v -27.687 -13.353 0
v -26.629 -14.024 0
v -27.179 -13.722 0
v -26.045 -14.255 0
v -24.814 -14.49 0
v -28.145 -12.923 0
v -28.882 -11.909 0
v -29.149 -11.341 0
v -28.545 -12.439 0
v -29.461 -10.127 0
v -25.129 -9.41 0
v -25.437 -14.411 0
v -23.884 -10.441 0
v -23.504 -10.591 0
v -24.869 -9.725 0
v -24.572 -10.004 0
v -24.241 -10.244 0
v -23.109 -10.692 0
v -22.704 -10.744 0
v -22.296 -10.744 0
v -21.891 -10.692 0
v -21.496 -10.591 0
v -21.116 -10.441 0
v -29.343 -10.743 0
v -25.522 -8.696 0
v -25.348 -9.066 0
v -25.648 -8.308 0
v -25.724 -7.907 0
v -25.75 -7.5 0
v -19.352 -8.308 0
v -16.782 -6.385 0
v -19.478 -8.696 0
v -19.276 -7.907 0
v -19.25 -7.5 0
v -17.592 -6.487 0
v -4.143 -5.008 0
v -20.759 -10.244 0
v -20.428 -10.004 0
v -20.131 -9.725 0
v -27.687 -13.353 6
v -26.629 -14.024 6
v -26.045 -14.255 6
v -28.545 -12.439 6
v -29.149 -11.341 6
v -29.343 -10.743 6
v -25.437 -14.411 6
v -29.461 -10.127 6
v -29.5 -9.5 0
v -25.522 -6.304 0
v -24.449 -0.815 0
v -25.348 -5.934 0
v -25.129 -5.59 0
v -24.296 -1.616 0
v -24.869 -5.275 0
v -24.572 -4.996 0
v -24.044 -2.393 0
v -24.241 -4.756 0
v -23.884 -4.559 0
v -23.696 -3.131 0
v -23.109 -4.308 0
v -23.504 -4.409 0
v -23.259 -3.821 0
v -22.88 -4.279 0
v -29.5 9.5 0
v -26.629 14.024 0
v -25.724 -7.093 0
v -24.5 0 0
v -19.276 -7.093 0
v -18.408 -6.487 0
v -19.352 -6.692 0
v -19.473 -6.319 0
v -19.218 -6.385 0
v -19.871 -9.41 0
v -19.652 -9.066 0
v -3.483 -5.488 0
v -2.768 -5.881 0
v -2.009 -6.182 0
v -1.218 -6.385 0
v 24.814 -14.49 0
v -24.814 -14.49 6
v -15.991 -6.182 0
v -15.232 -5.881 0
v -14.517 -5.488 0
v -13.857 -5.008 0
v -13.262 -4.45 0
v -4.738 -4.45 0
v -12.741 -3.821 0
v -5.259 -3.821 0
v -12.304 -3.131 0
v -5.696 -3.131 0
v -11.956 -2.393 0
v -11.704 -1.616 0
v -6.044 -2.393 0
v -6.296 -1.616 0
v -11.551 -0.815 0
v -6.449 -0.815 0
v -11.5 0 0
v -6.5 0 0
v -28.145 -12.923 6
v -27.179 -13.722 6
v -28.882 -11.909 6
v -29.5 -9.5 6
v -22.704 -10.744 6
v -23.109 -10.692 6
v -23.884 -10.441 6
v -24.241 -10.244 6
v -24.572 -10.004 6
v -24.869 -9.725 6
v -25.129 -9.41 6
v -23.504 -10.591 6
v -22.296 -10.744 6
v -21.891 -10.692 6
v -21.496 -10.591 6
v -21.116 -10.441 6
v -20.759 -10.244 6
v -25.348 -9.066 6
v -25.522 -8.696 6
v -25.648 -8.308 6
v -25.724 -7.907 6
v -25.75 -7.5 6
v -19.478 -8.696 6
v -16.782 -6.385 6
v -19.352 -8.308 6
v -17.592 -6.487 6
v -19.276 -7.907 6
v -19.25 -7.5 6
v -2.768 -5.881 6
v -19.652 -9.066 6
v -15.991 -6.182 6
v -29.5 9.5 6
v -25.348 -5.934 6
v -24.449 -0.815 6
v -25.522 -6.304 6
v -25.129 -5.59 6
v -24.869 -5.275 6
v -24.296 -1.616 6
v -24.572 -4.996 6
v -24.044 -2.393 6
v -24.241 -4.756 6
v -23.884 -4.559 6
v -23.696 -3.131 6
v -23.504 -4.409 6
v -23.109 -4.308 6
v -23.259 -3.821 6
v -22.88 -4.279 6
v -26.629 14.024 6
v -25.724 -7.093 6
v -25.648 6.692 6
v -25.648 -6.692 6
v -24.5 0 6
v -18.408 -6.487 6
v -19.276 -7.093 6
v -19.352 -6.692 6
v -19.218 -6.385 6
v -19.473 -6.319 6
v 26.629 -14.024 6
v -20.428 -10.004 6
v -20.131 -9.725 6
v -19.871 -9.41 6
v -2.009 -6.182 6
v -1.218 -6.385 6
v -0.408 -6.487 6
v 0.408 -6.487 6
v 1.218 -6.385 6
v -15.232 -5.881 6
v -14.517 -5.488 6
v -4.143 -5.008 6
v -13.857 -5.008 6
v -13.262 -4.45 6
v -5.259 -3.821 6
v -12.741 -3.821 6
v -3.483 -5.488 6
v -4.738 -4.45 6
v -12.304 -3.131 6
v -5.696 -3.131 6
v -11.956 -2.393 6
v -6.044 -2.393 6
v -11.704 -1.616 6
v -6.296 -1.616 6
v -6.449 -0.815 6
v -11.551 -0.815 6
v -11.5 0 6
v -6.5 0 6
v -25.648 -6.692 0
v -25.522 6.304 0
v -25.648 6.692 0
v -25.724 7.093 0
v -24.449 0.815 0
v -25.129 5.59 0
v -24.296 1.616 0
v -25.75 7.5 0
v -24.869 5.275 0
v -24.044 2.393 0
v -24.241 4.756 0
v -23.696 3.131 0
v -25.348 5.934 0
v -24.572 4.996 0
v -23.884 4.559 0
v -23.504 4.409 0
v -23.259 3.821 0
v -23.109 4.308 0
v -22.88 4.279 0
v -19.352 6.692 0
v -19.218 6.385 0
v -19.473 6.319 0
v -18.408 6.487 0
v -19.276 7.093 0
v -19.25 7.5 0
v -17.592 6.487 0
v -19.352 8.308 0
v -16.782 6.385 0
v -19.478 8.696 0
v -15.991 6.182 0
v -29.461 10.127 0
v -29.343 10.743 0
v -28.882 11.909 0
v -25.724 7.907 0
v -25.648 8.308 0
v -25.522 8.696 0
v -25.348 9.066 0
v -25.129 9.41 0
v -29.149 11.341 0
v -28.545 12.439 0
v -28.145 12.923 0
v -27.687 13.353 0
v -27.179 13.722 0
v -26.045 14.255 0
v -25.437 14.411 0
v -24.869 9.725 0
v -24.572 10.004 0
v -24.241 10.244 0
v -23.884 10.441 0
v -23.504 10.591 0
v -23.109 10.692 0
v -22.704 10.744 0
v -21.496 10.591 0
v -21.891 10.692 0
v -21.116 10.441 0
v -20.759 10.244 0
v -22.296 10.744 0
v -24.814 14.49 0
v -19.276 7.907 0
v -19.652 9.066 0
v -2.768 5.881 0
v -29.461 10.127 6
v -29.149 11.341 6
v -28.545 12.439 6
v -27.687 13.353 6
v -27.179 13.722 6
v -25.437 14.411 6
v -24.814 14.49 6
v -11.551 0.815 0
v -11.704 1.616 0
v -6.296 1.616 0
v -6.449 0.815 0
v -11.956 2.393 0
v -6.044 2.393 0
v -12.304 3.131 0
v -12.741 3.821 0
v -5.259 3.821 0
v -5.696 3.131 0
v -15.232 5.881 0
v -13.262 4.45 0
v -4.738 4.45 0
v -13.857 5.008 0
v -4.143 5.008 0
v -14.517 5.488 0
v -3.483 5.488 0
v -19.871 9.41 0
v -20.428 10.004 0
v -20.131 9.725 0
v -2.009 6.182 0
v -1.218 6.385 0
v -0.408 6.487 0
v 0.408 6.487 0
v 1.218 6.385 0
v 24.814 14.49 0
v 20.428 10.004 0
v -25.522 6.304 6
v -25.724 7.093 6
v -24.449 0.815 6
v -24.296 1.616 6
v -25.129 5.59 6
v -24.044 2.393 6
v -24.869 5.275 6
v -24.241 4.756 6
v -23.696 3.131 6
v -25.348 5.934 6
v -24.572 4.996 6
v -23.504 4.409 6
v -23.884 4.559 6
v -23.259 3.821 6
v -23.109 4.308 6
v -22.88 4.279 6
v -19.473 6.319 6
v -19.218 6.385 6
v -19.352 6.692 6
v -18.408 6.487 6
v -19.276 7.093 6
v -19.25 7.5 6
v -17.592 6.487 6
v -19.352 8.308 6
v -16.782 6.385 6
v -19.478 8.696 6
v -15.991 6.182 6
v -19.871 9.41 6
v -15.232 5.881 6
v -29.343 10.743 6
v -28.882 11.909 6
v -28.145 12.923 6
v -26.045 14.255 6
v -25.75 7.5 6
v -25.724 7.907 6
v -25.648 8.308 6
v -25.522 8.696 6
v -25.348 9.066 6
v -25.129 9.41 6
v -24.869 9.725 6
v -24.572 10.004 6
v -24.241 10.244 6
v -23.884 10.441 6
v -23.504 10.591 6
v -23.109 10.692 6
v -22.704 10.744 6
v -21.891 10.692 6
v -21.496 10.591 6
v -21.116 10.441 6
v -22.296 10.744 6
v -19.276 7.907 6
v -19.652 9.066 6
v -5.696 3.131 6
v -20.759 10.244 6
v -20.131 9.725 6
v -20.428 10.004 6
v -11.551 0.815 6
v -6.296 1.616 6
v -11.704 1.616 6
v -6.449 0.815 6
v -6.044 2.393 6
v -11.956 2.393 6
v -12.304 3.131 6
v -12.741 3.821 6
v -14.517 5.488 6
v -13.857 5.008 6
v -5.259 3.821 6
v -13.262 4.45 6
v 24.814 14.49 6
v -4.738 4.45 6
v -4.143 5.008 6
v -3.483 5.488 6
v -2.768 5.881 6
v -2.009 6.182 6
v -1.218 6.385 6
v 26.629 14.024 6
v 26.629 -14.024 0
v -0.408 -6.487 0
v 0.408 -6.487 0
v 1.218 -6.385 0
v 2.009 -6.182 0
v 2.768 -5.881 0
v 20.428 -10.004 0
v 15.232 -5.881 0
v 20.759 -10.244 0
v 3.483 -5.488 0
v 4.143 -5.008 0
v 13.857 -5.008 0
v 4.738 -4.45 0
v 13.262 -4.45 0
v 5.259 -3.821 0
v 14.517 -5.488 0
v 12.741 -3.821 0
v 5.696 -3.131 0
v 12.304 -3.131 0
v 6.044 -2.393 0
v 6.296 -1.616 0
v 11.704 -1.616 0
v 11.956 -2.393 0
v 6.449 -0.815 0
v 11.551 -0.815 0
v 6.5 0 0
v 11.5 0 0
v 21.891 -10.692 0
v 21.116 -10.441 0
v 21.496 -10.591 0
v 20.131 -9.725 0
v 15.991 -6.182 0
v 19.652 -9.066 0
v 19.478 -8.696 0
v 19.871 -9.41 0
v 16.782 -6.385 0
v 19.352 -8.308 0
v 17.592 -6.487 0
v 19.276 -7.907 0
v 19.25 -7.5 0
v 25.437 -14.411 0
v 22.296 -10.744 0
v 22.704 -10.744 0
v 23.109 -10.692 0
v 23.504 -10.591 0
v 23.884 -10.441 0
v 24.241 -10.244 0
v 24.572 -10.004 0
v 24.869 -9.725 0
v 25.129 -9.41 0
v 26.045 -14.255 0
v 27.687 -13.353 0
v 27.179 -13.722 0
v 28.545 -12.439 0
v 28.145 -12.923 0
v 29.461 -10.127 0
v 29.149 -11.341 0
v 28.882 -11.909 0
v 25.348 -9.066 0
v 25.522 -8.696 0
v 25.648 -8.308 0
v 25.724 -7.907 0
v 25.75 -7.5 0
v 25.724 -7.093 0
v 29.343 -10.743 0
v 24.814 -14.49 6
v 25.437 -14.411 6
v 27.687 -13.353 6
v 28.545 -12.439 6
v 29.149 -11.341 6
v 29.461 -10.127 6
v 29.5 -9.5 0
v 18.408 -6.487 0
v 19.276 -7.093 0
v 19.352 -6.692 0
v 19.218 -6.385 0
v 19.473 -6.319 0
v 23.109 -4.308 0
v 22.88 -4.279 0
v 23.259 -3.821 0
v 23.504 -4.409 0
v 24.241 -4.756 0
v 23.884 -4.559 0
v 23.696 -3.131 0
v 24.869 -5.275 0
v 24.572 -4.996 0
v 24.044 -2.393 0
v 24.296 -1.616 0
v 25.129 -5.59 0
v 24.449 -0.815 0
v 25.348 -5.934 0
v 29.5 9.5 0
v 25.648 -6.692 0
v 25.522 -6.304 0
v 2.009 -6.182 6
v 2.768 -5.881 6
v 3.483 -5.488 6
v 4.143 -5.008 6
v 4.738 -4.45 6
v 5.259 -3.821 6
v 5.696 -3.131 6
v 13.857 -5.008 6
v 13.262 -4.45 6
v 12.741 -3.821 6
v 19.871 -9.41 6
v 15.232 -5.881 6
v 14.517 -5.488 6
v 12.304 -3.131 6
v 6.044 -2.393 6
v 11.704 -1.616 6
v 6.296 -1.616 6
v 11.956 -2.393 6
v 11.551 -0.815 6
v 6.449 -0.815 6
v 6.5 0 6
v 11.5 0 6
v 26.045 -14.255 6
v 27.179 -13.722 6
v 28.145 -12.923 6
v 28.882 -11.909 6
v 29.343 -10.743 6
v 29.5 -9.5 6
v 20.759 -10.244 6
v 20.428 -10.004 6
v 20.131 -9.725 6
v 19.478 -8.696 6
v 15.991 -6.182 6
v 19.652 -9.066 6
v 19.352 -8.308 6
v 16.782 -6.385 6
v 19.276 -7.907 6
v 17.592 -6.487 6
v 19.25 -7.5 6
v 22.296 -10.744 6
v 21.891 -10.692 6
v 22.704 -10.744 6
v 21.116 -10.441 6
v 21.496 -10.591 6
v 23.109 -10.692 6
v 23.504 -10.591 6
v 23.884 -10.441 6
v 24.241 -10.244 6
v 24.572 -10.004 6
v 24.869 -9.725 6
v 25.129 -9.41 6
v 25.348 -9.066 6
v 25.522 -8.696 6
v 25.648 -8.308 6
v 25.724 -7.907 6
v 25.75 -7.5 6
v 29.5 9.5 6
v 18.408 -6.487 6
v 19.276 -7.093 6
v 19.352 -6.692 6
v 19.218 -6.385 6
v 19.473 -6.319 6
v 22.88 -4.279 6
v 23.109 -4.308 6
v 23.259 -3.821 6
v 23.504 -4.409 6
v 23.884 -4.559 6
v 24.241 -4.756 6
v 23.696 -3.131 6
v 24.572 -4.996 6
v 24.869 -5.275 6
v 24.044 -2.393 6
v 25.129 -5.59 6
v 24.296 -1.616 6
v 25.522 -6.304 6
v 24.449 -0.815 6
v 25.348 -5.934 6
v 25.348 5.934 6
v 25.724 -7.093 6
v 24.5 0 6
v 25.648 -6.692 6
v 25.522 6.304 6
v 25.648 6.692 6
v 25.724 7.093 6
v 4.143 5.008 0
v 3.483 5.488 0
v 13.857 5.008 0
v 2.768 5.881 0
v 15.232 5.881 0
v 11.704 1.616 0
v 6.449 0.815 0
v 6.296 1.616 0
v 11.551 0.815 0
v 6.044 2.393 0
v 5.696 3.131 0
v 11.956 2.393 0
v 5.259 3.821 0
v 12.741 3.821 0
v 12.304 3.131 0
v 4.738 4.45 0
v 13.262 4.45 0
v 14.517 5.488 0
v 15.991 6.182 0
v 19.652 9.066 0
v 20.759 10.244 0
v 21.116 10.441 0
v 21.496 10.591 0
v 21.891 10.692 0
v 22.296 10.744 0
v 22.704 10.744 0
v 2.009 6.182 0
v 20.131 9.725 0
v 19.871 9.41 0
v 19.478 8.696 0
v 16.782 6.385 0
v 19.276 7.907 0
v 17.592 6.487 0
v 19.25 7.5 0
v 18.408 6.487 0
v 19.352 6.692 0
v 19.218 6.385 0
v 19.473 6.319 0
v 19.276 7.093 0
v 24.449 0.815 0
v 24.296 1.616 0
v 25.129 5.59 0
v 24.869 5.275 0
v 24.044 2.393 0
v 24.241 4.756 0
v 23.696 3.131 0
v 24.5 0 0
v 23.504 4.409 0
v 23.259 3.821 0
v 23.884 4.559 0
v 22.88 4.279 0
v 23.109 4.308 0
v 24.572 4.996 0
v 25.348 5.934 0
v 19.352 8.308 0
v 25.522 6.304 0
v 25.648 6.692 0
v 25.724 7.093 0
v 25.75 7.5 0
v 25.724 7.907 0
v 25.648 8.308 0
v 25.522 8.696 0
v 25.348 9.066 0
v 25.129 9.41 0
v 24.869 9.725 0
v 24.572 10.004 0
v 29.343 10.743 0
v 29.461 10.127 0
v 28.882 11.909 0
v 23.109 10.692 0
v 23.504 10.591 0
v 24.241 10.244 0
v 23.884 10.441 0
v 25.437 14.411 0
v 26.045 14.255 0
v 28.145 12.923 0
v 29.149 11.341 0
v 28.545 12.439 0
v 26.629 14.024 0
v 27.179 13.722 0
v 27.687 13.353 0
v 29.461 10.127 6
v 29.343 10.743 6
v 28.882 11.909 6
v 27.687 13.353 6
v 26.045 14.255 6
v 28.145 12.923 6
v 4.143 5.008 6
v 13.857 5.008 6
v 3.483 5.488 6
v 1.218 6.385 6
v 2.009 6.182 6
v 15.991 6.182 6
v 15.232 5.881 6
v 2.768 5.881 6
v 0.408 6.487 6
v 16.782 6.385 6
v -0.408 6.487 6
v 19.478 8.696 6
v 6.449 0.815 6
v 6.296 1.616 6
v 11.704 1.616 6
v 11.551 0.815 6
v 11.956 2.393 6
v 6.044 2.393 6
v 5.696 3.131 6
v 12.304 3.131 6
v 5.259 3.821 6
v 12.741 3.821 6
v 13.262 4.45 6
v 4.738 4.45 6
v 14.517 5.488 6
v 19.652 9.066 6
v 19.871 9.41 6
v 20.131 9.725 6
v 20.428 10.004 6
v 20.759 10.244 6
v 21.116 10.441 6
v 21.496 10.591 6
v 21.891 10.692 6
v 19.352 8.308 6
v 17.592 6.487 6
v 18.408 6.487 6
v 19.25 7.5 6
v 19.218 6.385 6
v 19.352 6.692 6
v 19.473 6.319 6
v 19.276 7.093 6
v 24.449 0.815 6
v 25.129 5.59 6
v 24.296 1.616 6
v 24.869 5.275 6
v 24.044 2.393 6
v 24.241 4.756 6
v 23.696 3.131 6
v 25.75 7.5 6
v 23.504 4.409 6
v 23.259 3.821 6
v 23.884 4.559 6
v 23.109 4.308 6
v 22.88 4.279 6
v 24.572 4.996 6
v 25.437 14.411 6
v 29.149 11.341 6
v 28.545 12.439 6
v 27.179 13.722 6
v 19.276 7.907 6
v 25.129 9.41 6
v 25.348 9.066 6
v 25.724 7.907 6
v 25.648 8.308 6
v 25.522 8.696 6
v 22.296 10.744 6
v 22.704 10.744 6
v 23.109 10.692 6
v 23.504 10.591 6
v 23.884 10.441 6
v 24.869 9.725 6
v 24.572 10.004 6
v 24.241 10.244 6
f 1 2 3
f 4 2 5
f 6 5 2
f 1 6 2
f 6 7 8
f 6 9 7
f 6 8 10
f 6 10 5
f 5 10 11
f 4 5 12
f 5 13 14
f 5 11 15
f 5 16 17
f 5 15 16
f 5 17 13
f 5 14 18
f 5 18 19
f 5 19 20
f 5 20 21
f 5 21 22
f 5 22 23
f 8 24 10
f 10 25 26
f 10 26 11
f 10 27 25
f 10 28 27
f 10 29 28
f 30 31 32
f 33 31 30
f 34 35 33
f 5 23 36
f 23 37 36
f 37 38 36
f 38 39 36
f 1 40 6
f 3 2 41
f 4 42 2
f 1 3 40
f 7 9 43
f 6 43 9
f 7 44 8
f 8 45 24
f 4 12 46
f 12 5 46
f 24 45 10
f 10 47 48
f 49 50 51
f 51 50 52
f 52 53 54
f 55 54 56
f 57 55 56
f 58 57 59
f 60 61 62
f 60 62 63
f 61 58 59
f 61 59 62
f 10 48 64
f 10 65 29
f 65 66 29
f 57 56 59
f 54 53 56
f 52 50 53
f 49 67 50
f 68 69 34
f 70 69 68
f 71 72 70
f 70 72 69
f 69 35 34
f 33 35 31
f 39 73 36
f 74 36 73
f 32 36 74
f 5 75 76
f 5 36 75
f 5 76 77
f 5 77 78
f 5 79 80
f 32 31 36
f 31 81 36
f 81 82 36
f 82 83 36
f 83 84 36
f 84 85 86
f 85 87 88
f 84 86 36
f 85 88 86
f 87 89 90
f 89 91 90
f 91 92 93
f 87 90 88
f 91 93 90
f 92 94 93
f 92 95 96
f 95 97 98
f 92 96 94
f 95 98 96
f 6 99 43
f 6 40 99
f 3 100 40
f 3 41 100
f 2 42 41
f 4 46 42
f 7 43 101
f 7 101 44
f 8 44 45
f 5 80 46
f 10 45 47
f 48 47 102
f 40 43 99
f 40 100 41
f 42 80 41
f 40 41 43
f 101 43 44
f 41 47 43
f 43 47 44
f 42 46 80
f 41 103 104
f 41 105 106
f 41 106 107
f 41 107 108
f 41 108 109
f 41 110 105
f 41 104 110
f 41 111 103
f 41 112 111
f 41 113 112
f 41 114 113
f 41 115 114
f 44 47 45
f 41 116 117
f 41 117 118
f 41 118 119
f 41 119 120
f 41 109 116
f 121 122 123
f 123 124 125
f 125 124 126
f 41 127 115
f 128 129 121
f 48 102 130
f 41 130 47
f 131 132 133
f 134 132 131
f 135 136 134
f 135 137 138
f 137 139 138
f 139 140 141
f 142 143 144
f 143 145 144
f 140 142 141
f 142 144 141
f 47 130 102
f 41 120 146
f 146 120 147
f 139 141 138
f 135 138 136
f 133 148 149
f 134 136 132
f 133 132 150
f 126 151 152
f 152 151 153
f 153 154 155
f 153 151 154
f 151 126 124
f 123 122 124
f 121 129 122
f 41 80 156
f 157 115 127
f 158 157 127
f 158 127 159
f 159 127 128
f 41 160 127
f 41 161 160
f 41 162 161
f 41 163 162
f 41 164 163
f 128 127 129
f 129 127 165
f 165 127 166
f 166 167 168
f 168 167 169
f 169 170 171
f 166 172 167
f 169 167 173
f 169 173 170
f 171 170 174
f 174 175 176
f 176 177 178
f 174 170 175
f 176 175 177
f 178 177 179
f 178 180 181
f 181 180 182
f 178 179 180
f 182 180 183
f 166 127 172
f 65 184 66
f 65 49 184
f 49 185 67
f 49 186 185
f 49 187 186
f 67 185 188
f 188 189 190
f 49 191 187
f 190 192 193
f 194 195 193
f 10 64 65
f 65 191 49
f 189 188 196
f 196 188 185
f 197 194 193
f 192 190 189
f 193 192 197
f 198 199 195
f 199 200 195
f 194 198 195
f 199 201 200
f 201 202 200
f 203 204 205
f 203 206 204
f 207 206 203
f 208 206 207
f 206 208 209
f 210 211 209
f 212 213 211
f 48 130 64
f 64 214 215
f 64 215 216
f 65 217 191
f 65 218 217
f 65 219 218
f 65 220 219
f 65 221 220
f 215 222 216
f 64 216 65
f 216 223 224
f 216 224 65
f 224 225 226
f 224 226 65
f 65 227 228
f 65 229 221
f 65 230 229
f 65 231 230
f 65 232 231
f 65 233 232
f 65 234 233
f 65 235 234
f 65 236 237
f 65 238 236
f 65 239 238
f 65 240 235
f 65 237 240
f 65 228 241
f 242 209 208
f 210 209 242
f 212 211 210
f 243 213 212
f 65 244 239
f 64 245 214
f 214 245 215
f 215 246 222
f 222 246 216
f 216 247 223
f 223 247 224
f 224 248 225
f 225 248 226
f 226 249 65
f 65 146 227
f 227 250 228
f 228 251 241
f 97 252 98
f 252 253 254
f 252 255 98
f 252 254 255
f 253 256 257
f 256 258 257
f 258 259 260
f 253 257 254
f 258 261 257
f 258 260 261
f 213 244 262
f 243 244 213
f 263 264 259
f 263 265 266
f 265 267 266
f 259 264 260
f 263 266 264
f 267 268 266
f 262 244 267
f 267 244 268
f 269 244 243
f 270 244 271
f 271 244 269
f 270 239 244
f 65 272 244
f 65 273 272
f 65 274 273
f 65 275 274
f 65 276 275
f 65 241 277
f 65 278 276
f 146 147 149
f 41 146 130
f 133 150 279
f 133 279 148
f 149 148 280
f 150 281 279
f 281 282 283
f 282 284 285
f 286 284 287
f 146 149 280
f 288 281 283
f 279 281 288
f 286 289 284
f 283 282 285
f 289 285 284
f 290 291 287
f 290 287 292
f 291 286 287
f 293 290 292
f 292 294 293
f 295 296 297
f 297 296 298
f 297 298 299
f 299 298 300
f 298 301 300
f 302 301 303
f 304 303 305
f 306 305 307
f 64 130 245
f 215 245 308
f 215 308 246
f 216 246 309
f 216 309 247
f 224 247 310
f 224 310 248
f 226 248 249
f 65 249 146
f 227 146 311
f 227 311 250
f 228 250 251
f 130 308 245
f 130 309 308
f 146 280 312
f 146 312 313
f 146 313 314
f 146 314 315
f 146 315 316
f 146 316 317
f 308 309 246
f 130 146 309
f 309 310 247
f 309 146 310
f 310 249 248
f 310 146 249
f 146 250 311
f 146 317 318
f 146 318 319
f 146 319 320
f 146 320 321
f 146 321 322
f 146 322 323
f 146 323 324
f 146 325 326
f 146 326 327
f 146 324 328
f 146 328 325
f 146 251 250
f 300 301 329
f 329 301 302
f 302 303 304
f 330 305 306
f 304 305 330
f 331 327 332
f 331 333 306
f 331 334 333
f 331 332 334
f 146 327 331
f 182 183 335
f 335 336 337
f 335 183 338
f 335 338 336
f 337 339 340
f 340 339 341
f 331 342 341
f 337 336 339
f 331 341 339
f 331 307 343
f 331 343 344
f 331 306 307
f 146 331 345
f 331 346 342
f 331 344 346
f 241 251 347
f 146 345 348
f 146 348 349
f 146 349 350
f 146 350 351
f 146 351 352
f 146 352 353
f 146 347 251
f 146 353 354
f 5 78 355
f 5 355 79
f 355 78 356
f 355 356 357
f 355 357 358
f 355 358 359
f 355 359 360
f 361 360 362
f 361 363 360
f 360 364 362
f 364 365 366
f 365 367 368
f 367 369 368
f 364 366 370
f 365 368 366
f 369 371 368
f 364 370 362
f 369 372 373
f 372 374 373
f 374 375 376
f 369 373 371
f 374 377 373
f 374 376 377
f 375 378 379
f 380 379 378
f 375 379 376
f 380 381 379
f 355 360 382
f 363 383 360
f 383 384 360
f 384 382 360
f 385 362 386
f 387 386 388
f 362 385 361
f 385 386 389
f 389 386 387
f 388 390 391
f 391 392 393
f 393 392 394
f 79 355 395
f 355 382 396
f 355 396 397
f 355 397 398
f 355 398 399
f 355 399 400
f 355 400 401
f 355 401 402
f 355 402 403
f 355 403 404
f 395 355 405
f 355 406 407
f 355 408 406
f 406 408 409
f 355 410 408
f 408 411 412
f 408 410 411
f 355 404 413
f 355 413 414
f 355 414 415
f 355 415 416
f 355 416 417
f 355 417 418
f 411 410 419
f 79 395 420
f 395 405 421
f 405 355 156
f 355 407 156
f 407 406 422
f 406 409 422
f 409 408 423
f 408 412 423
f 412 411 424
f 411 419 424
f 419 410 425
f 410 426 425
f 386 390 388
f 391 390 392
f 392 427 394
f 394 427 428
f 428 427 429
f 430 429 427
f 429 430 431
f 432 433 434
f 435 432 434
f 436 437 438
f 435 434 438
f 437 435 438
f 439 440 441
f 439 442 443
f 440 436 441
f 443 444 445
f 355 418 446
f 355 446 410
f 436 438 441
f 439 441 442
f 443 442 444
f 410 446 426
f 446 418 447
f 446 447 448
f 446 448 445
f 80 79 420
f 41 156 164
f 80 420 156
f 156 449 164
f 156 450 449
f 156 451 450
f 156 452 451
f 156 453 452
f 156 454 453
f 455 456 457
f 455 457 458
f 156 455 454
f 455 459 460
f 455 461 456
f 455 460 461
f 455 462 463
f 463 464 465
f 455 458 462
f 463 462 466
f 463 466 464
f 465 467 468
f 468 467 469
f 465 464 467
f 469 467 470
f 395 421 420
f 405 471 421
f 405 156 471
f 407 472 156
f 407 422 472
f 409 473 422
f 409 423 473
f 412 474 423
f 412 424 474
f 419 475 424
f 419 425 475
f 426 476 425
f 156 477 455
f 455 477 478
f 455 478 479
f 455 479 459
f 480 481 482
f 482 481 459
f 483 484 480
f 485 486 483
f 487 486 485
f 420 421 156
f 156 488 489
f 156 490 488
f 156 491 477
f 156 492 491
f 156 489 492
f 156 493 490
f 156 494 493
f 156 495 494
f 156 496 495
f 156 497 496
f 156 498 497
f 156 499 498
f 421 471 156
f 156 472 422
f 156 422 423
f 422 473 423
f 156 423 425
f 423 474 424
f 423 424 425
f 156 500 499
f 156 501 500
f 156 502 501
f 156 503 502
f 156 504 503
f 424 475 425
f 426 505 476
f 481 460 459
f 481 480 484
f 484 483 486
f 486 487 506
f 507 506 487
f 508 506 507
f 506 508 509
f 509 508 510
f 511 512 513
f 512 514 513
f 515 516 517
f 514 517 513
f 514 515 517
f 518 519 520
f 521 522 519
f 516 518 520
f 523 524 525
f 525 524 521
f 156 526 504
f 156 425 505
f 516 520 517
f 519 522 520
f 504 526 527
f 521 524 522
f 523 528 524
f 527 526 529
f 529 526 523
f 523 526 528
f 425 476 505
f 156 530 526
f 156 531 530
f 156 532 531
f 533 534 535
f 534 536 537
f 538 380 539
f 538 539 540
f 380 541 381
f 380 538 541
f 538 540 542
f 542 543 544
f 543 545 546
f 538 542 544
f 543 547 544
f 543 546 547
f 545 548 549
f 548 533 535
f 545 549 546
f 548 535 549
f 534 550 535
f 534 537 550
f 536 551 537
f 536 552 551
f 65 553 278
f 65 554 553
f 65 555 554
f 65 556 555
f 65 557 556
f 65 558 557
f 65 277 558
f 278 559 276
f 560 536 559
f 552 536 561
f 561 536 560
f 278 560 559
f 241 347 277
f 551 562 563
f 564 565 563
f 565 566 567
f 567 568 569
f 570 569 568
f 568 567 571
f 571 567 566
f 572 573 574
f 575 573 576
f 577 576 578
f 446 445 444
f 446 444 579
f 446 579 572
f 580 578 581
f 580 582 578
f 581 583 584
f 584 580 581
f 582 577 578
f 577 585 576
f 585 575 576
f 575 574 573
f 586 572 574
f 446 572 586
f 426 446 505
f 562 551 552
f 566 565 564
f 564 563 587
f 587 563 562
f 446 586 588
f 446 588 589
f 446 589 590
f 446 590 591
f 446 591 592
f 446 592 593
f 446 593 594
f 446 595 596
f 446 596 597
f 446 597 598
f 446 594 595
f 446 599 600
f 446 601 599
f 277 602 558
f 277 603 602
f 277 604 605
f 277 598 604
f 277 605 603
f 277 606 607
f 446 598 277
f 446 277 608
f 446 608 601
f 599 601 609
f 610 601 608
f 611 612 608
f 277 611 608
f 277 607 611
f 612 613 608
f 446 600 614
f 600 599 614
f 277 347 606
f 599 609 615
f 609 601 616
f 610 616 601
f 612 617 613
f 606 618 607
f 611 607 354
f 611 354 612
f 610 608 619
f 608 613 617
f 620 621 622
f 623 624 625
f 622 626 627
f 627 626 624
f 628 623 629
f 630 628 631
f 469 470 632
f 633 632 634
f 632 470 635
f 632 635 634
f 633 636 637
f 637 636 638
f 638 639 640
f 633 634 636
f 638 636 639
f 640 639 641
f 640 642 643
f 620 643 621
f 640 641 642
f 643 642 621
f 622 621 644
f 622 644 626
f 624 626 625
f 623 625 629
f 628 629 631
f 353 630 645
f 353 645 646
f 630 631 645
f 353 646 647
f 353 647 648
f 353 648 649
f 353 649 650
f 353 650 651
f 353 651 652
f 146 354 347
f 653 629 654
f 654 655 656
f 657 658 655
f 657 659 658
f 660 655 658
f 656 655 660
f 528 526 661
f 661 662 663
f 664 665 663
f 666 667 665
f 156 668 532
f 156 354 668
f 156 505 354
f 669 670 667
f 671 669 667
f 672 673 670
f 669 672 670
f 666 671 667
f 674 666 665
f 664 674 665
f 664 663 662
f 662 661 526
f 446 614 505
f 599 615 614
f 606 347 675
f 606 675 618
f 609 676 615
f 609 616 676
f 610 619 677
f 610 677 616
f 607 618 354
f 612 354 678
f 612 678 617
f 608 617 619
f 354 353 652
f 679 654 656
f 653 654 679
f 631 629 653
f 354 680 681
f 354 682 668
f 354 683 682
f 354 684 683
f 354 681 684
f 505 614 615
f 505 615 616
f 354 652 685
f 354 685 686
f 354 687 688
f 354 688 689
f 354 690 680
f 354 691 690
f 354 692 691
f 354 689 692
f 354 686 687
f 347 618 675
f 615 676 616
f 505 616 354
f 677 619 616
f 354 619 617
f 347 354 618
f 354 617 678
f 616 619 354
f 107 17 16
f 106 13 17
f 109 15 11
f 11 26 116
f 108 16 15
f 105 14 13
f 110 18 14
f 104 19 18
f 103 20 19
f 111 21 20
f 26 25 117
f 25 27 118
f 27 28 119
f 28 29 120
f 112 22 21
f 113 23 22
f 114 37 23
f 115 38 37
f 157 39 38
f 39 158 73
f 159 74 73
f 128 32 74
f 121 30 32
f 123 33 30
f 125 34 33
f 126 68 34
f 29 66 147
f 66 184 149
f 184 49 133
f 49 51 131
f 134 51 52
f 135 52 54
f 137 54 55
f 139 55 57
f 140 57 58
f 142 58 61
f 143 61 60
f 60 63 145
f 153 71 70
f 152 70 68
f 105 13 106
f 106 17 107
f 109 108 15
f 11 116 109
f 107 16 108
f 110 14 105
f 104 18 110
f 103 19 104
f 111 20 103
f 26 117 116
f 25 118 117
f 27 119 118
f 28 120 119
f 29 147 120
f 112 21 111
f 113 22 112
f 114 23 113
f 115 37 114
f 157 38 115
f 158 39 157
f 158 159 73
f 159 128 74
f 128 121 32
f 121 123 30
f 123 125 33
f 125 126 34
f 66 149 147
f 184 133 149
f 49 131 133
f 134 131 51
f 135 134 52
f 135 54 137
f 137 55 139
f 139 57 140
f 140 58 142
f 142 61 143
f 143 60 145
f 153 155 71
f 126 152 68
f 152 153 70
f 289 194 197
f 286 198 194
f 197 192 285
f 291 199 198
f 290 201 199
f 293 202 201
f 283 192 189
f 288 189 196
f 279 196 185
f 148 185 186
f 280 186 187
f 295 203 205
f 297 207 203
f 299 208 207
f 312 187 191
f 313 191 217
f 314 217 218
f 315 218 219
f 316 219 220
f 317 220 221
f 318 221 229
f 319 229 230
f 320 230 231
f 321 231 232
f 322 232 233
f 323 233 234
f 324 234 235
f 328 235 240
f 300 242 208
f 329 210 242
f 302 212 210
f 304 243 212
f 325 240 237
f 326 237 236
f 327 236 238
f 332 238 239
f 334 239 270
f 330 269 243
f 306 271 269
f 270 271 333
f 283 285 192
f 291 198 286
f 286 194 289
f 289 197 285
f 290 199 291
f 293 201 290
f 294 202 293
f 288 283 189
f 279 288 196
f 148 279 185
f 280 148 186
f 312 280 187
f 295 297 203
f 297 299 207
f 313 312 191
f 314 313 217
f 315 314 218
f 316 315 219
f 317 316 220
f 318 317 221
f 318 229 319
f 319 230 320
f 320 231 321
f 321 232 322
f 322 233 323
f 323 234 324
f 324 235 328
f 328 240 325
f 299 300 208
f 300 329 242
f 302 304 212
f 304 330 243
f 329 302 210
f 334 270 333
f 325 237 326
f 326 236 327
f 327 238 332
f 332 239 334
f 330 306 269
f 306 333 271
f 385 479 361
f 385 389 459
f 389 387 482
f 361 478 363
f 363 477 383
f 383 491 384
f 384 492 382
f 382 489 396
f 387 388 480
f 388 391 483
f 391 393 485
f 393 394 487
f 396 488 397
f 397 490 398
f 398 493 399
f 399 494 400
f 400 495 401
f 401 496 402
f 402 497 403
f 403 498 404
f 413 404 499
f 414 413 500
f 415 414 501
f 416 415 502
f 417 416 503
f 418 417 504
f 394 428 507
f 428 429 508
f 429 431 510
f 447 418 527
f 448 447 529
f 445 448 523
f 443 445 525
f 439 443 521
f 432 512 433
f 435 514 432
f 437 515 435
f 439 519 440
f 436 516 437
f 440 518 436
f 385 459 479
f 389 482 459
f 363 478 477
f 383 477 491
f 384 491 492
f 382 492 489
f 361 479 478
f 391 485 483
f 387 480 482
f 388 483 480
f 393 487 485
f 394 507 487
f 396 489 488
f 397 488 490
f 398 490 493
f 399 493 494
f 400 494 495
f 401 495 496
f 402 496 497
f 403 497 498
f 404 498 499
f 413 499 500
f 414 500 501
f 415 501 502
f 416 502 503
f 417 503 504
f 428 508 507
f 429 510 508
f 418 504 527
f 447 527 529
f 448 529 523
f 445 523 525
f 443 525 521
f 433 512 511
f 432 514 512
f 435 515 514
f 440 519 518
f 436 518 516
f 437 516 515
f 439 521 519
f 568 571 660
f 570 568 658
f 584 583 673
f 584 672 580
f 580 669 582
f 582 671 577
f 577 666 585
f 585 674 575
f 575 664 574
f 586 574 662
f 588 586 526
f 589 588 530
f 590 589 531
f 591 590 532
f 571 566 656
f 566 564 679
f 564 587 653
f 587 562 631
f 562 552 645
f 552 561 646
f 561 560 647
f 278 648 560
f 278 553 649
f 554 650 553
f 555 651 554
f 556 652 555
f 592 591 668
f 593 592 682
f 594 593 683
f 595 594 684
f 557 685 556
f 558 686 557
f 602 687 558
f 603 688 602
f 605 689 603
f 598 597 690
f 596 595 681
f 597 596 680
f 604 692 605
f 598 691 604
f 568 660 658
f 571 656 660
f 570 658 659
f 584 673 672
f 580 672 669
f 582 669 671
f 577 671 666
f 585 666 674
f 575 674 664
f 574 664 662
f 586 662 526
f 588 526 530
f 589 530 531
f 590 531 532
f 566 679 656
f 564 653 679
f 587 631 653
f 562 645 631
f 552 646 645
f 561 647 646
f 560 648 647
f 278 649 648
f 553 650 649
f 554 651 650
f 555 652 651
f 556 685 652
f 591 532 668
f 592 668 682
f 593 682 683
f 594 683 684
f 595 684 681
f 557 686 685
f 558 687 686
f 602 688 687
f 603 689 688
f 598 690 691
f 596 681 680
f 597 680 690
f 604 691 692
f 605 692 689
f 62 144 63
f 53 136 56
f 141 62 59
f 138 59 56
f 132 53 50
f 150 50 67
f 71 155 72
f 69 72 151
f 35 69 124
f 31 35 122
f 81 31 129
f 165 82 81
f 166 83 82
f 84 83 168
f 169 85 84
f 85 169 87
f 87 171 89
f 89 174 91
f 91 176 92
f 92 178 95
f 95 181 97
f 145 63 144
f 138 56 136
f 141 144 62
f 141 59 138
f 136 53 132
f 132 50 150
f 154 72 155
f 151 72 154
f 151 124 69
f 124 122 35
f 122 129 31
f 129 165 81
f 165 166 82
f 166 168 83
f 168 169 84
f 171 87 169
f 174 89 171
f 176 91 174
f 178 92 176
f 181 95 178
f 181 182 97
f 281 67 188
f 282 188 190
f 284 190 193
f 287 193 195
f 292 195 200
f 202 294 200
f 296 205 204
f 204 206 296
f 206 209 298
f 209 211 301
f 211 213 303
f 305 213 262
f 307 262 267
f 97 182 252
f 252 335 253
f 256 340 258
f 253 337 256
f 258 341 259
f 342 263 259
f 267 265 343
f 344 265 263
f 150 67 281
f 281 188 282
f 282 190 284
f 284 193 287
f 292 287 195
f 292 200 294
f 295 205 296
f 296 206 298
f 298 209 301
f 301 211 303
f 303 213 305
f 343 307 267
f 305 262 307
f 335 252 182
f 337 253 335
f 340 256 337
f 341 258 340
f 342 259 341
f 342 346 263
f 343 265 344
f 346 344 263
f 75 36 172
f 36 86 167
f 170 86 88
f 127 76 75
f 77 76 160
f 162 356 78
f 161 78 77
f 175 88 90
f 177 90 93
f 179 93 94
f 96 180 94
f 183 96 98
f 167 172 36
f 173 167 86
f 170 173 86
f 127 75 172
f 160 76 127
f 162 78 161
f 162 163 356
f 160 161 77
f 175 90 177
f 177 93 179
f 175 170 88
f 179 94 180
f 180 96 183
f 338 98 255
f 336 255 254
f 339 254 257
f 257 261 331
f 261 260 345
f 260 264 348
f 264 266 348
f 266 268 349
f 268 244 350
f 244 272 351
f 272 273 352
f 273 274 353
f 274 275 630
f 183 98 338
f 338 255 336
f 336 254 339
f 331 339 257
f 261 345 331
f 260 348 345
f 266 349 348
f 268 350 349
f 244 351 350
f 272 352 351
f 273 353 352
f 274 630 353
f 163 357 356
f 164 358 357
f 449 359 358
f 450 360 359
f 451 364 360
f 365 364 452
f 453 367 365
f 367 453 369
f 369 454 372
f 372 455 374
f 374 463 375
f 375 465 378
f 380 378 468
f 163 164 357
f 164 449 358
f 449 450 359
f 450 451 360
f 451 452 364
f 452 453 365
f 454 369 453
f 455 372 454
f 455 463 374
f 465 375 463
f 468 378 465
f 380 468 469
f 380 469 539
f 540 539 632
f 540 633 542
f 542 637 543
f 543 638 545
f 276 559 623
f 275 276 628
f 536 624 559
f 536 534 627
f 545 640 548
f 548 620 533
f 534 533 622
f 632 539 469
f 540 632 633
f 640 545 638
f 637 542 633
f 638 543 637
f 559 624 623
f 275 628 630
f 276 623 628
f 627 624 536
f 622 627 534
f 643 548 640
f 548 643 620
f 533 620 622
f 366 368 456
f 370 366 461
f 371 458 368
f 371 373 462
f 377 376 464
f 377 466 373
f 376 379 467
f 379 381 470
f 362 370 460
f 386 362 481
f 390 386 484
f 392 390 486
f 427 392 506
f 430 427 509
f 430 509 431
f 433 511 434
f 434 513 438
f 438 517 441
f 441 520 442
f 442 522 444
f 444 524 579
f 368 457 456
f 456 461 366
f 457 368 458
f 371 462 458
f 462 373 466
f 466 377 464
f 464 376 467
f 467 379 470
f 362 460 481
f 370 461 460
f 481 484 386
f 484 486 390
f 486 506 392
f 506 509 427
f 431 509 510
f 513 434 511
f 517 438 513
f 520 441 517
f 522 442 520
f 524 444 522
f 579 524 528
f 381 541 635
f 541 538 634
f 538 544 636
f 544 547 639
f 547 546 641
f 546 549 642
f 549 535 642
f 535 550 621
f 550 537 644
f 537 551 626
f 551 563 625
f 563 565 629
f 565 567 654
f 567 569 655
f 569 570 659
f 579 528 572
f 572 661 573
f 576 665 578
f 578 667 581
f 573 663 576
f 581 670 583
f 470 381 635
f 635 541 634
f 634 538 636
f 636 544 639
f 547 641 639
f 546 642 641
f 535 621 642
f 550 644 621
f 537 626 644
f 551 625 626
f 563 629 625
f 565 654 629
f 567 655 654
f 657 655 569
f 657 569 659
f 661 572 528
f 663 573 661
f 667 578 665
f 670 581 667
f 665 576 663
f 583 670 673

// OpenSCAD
$fn = 50;

difference() {
	union() {
		hull() {
			translate(v = [-24.5, 9.5, 0]) {
				cylinder(h = 6, r = 5);
			}
			translate(v = [24.5, 9.5, 0]) {
				cylinder(h = 6, r = 5);
			}
			translate(v = [-24.5, -9.5, 0]) {
				cylinder(h = 6, r = 5);
			}
			translate(v = [24.5, -9.5, 0]) {
				cylinder(h = 6, r = 5);
			}
		}
	}
	union() {
		translate(v = [-22.5, -7.5, -100.0]) {
			cylinder(h = 200, r = 3.25);
		}
		translate(v = [-22.5, 7.5, -100.0]) {
			cylinder(h = 200, r = 3.25);
		}
		translate(v = [22.5, -7.5, -100.0]) {
			cylinder(h = 200, r = 3.25);
		}
		translate(v = [22.5, 7.5, -100.0]) {
			cylinder(h = 200, r = 3.25);
		}
		translate(v = [-22.5, -7.5, -100.0]) {
			cylinder(h = 200, r = 1.8);
		}
		translate(v = [-22.5, 7.5, -100.0]) {
			cylinder(h = 200, r = 1.8);
		}
		translate(v = [22.5, -7.5, -100.0]) {
			cylinder(h = 200, r = 1.8);
		}
		translate(v = [22.5, 7.5, -100.0]) {
			cylinder(h = 200, r = 1.8);
		}
		translate(v = [-18.0, 0, 0.0]) {
			cylinder(h = 6, r = 6.5);
		}
		cylinder(h = 6, r = 6.5);
		translate(v = [18.0, 0, 0.0]) {
			cylinder(h = 6, r = 6.5);
		}
	}
}
